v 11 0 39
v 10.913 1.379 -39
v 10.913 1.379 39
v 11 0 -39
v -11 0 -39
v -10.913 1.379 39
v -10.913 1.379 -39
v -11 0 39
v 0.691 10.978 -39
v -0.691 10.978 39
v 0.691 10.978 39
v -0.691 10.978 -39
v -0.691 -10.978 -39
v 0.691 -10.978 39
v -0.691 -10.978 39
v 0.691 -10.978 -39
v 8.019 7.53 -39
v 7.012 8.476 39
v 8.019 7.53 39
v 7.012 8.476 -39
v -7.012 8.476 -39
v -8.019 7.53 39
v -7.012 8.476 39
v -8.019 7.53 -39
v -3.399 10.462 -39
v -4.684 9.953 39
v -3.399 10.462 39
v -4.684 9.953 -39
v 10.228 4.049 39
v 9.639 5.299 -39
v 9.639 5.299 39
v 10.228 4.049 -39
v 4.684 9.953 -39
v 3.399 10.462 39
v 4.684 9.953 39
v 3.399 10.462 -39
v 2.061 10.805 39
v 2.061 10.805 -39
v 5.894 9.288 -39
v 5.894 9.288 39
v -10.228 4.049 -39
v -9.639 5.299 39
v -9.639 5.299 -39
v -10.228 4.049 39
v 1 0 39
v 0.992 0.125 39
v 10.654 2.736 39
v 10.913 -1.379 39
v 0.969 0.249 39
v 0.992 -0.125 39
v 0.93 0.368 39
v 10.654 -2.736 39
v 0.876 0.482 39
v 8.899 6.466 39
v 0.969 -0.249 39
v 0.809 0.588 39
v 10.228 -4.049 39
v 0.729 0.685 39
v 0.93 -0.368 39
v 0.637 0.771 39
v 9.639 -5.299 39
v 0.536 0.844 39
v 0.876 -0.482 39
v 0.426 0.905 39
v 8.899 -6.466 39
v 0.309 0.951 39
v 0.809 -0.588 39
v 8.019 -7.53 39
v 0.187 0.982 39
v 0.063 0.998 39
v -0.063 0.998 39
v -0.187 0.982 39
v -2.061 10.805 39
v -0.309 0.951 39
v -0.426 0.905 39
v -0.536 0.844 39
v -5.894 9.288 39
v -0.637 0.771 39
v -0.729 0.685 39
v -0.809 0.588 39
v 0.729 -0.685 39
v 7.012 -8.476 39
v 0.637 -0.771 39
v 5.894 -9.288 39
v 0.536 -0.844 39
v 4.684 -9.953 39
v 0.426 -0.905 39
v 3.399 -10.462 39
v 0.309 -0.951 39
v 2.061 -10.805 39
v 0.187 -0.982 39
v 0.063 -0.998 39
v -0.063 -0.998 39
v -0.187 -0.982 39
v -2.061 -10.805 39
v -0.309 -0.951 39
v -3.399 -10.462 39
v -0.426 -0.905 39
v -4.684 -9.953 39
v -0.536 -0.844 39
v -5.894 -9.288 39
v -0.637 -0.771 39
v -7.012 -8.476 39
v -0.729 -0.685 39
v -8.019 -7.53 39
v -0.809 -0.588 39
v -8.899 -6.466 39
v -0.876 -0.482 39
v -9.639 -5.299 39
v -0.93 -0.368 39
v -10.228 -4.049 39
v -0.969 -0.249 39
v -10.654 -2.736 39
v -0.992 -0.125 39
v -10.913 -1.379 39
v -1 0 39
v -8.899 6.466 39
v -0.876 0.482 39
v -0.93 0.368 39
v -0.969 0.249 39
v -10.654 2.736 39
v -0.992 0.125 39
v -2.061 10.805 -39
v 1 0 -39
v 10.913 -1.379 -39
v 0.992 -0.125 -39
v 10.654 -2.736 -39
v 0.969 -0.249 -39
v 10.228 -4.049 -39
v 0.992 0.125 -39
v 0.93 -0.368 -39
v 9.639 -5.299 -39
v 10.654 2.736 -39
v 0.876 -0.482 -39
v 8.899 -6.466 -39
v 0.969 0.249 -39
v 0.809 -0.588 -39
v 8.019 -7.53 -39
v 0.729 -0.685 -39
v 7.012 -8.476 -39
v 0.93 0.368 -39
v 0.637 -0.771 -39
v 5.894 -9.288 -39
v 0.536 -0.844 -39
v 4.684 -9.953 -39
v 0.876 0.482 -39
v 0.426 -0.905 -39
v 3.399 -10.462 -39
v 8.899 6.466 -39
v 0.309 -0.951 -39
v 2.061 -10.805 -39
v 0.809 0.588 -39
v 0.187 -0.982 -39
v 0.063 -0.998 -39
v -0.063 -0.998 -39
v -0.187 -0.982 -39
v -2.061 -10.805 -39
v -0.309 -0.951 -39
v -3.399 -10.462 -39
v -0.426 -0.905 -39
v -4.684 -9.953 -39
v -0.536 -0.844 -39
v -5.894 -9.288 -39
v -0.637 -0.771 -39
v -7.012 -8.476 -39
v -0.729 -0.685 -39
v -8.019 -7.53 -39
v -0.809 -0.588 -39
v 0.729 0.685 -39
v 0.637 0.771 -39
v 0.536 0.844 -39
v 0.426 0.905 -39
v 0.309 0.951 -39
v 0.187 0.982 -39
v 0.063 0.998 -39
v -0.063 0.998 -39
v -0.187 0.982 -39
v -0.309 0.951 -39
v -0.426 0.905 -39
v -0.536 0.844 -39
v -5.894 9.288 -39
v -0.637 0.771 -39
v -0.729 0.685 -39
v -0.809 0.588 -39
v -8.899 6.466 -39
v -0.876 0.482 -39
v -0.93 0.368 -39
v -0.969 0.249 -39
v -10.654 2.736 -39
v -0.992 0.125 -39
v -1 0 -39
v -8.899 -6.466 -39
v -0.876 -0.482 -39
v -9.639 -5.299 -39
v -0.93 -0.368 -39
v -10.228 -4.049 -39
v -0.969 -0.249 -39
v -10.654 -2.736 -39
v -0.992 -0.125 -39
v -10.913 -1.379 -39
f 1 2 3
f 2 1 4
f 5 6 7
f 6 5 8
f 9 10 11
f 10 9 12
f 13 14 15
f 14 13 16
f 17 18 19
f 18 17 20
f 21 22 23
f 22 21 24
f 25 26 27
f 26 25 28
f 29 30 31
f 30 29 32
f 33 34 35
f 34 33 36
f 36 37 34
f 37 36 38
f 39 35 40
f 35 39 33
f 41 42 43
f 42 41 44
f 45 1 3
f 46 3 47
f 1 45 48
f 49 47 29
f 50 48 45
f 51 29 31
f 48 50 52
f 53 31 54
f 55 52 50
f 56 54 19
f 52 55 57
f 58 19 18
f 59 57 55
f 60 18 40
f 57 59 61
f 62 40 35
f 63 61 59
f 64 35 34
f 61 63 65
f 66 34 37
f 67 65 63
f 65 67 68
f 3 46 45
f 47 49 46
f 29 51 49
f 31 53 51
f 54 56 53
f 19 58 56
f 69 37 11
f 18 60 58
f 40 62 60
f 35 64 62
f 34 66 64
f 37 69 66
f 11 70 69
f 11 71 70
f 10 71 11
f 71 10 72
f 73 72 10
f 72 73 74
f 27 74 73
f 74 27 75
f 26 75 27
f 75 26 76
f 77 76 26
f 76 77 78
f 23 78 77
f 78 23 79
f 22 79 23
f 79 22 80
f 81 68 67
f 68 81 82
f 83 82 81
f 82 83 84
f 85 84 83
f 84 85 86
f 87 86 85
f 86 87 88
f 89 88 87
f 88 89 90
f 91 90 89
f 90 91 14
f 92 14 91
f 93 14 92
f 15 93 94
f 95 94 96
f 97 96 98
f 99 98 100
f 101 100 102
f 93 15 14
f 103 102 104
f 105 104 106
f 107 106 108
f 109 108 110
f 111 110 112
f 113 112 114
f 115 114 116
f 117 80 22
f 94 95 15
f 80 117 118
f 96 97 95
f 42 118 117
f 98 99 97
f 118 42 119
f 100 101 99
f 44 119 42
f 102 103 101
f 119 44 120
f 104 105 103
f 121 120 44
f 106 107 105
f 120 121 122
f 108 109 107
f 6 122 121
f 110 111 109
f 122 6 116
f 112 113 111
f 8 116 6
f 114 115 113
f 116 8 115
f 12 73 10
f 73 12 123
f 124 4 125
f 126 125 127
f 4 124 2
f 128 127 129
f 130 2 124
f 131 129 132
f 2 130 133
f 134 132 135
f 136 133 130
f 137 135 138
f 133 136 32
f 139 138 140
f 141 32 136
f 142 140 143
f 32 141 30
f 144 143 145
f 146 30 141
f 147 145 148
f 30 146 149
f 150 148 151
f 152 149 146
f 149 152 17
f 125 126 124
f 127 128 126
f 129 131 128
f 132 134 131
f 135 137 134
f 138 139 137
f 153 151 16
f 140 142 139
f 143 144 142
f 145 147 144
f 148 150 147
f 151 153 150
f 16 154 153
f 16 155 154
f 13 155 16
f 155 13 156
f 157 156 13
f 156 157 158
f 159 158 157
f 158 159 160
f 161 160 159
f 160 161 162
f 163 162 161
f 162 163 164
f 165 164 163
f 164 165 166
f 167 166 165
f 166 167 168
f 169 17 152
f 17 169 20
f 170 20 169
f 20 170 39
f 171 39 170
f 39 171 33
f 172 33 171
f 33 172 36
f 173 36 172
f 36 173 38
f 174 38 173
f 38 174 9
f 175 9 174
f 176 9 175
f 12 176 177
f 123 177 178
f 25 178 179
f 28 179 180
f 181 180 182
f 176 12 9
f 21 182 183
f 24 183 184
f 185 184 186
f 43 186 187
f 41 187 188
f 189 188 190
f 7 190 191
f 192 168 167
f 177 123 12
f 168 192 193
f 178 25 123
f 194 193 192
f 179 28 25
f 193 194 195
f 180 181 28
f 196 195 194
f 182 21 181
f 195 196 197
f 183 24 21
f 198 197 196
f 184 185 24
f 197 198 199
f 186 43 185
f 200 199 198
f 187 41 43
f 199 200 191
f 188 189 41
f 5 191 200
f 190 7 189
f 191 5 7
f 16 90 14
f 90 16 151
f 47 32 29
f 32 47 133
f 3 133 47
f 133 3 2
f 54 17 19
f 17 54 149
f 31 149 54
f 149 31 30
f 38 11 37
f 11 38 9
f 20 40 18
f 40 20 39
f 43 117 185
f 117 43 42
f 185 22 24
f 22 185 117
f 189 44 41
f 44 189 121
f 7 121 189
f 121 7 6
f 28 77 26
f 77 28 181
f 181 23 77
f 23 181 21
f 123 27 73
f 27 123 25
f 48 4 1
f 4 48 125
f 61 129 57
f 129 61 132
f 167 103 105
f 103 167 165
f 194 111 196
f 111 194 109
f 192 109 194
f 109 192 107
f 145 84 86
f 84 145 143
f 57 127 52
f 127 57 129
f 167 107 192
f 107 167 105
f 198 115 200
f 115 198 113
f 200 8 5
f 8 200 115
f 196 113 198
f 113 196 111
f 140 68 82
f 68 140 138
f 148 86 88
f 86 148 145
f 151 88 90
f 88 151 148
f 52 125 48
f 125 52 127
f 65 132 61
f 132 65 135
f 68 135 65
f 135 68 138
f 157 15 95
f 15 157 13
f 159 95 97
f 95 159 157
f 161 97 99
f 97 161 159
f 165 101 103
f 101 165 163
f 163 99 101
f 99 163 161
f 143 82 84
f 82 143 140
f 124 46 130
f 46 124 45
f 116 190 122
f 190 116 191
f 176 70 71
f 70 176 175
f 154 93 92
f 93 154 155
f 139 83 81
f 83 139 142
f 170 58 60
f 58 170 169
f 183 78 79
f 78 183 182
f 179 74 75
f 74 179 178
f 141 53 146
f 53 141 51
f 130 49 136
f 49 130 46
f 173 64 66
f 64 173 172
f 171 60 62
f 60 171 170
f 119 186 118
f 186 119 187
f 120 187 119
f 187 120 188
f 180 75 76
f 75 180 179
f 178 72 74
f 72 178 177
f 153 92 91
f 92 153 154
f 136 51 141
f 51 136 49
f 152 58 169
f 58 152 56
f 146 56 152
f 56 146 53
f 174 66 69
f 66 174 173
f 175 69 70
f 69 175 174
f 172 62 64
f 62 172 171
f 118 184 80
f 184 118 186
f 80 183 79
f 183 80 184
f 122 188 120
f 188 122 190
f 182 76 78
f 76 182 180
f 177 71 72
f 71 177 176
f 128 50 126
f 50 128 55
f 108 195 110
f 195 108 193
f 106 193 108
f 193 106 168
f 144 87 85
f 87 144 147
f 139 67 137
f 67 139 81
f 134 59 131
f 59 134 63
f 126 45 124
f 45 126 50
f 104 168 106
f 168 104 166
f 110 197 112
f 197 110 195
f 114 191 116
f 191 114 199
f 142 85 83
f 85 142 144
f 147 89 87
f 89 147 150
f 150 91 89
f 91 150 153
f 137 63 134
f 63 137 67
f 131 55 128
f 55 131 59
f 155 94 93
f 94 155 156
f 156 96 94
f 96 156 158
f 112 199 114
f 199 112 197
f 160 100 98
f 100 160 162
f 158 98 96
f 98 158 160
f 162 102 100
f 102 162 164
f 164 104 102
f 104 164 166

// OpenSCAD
$fn = 50;


difference() {
	union() {
		translate(v = [0, 0, -39.0000000000]) {
			cylinder(h = 78, r = 11.0000000000);
		}
	}
	union() {
		translate(v = [0, 0, -100.0000000000]) {
			cylinder(h = 200, r = 1.0000000000);
		}
	}
}
